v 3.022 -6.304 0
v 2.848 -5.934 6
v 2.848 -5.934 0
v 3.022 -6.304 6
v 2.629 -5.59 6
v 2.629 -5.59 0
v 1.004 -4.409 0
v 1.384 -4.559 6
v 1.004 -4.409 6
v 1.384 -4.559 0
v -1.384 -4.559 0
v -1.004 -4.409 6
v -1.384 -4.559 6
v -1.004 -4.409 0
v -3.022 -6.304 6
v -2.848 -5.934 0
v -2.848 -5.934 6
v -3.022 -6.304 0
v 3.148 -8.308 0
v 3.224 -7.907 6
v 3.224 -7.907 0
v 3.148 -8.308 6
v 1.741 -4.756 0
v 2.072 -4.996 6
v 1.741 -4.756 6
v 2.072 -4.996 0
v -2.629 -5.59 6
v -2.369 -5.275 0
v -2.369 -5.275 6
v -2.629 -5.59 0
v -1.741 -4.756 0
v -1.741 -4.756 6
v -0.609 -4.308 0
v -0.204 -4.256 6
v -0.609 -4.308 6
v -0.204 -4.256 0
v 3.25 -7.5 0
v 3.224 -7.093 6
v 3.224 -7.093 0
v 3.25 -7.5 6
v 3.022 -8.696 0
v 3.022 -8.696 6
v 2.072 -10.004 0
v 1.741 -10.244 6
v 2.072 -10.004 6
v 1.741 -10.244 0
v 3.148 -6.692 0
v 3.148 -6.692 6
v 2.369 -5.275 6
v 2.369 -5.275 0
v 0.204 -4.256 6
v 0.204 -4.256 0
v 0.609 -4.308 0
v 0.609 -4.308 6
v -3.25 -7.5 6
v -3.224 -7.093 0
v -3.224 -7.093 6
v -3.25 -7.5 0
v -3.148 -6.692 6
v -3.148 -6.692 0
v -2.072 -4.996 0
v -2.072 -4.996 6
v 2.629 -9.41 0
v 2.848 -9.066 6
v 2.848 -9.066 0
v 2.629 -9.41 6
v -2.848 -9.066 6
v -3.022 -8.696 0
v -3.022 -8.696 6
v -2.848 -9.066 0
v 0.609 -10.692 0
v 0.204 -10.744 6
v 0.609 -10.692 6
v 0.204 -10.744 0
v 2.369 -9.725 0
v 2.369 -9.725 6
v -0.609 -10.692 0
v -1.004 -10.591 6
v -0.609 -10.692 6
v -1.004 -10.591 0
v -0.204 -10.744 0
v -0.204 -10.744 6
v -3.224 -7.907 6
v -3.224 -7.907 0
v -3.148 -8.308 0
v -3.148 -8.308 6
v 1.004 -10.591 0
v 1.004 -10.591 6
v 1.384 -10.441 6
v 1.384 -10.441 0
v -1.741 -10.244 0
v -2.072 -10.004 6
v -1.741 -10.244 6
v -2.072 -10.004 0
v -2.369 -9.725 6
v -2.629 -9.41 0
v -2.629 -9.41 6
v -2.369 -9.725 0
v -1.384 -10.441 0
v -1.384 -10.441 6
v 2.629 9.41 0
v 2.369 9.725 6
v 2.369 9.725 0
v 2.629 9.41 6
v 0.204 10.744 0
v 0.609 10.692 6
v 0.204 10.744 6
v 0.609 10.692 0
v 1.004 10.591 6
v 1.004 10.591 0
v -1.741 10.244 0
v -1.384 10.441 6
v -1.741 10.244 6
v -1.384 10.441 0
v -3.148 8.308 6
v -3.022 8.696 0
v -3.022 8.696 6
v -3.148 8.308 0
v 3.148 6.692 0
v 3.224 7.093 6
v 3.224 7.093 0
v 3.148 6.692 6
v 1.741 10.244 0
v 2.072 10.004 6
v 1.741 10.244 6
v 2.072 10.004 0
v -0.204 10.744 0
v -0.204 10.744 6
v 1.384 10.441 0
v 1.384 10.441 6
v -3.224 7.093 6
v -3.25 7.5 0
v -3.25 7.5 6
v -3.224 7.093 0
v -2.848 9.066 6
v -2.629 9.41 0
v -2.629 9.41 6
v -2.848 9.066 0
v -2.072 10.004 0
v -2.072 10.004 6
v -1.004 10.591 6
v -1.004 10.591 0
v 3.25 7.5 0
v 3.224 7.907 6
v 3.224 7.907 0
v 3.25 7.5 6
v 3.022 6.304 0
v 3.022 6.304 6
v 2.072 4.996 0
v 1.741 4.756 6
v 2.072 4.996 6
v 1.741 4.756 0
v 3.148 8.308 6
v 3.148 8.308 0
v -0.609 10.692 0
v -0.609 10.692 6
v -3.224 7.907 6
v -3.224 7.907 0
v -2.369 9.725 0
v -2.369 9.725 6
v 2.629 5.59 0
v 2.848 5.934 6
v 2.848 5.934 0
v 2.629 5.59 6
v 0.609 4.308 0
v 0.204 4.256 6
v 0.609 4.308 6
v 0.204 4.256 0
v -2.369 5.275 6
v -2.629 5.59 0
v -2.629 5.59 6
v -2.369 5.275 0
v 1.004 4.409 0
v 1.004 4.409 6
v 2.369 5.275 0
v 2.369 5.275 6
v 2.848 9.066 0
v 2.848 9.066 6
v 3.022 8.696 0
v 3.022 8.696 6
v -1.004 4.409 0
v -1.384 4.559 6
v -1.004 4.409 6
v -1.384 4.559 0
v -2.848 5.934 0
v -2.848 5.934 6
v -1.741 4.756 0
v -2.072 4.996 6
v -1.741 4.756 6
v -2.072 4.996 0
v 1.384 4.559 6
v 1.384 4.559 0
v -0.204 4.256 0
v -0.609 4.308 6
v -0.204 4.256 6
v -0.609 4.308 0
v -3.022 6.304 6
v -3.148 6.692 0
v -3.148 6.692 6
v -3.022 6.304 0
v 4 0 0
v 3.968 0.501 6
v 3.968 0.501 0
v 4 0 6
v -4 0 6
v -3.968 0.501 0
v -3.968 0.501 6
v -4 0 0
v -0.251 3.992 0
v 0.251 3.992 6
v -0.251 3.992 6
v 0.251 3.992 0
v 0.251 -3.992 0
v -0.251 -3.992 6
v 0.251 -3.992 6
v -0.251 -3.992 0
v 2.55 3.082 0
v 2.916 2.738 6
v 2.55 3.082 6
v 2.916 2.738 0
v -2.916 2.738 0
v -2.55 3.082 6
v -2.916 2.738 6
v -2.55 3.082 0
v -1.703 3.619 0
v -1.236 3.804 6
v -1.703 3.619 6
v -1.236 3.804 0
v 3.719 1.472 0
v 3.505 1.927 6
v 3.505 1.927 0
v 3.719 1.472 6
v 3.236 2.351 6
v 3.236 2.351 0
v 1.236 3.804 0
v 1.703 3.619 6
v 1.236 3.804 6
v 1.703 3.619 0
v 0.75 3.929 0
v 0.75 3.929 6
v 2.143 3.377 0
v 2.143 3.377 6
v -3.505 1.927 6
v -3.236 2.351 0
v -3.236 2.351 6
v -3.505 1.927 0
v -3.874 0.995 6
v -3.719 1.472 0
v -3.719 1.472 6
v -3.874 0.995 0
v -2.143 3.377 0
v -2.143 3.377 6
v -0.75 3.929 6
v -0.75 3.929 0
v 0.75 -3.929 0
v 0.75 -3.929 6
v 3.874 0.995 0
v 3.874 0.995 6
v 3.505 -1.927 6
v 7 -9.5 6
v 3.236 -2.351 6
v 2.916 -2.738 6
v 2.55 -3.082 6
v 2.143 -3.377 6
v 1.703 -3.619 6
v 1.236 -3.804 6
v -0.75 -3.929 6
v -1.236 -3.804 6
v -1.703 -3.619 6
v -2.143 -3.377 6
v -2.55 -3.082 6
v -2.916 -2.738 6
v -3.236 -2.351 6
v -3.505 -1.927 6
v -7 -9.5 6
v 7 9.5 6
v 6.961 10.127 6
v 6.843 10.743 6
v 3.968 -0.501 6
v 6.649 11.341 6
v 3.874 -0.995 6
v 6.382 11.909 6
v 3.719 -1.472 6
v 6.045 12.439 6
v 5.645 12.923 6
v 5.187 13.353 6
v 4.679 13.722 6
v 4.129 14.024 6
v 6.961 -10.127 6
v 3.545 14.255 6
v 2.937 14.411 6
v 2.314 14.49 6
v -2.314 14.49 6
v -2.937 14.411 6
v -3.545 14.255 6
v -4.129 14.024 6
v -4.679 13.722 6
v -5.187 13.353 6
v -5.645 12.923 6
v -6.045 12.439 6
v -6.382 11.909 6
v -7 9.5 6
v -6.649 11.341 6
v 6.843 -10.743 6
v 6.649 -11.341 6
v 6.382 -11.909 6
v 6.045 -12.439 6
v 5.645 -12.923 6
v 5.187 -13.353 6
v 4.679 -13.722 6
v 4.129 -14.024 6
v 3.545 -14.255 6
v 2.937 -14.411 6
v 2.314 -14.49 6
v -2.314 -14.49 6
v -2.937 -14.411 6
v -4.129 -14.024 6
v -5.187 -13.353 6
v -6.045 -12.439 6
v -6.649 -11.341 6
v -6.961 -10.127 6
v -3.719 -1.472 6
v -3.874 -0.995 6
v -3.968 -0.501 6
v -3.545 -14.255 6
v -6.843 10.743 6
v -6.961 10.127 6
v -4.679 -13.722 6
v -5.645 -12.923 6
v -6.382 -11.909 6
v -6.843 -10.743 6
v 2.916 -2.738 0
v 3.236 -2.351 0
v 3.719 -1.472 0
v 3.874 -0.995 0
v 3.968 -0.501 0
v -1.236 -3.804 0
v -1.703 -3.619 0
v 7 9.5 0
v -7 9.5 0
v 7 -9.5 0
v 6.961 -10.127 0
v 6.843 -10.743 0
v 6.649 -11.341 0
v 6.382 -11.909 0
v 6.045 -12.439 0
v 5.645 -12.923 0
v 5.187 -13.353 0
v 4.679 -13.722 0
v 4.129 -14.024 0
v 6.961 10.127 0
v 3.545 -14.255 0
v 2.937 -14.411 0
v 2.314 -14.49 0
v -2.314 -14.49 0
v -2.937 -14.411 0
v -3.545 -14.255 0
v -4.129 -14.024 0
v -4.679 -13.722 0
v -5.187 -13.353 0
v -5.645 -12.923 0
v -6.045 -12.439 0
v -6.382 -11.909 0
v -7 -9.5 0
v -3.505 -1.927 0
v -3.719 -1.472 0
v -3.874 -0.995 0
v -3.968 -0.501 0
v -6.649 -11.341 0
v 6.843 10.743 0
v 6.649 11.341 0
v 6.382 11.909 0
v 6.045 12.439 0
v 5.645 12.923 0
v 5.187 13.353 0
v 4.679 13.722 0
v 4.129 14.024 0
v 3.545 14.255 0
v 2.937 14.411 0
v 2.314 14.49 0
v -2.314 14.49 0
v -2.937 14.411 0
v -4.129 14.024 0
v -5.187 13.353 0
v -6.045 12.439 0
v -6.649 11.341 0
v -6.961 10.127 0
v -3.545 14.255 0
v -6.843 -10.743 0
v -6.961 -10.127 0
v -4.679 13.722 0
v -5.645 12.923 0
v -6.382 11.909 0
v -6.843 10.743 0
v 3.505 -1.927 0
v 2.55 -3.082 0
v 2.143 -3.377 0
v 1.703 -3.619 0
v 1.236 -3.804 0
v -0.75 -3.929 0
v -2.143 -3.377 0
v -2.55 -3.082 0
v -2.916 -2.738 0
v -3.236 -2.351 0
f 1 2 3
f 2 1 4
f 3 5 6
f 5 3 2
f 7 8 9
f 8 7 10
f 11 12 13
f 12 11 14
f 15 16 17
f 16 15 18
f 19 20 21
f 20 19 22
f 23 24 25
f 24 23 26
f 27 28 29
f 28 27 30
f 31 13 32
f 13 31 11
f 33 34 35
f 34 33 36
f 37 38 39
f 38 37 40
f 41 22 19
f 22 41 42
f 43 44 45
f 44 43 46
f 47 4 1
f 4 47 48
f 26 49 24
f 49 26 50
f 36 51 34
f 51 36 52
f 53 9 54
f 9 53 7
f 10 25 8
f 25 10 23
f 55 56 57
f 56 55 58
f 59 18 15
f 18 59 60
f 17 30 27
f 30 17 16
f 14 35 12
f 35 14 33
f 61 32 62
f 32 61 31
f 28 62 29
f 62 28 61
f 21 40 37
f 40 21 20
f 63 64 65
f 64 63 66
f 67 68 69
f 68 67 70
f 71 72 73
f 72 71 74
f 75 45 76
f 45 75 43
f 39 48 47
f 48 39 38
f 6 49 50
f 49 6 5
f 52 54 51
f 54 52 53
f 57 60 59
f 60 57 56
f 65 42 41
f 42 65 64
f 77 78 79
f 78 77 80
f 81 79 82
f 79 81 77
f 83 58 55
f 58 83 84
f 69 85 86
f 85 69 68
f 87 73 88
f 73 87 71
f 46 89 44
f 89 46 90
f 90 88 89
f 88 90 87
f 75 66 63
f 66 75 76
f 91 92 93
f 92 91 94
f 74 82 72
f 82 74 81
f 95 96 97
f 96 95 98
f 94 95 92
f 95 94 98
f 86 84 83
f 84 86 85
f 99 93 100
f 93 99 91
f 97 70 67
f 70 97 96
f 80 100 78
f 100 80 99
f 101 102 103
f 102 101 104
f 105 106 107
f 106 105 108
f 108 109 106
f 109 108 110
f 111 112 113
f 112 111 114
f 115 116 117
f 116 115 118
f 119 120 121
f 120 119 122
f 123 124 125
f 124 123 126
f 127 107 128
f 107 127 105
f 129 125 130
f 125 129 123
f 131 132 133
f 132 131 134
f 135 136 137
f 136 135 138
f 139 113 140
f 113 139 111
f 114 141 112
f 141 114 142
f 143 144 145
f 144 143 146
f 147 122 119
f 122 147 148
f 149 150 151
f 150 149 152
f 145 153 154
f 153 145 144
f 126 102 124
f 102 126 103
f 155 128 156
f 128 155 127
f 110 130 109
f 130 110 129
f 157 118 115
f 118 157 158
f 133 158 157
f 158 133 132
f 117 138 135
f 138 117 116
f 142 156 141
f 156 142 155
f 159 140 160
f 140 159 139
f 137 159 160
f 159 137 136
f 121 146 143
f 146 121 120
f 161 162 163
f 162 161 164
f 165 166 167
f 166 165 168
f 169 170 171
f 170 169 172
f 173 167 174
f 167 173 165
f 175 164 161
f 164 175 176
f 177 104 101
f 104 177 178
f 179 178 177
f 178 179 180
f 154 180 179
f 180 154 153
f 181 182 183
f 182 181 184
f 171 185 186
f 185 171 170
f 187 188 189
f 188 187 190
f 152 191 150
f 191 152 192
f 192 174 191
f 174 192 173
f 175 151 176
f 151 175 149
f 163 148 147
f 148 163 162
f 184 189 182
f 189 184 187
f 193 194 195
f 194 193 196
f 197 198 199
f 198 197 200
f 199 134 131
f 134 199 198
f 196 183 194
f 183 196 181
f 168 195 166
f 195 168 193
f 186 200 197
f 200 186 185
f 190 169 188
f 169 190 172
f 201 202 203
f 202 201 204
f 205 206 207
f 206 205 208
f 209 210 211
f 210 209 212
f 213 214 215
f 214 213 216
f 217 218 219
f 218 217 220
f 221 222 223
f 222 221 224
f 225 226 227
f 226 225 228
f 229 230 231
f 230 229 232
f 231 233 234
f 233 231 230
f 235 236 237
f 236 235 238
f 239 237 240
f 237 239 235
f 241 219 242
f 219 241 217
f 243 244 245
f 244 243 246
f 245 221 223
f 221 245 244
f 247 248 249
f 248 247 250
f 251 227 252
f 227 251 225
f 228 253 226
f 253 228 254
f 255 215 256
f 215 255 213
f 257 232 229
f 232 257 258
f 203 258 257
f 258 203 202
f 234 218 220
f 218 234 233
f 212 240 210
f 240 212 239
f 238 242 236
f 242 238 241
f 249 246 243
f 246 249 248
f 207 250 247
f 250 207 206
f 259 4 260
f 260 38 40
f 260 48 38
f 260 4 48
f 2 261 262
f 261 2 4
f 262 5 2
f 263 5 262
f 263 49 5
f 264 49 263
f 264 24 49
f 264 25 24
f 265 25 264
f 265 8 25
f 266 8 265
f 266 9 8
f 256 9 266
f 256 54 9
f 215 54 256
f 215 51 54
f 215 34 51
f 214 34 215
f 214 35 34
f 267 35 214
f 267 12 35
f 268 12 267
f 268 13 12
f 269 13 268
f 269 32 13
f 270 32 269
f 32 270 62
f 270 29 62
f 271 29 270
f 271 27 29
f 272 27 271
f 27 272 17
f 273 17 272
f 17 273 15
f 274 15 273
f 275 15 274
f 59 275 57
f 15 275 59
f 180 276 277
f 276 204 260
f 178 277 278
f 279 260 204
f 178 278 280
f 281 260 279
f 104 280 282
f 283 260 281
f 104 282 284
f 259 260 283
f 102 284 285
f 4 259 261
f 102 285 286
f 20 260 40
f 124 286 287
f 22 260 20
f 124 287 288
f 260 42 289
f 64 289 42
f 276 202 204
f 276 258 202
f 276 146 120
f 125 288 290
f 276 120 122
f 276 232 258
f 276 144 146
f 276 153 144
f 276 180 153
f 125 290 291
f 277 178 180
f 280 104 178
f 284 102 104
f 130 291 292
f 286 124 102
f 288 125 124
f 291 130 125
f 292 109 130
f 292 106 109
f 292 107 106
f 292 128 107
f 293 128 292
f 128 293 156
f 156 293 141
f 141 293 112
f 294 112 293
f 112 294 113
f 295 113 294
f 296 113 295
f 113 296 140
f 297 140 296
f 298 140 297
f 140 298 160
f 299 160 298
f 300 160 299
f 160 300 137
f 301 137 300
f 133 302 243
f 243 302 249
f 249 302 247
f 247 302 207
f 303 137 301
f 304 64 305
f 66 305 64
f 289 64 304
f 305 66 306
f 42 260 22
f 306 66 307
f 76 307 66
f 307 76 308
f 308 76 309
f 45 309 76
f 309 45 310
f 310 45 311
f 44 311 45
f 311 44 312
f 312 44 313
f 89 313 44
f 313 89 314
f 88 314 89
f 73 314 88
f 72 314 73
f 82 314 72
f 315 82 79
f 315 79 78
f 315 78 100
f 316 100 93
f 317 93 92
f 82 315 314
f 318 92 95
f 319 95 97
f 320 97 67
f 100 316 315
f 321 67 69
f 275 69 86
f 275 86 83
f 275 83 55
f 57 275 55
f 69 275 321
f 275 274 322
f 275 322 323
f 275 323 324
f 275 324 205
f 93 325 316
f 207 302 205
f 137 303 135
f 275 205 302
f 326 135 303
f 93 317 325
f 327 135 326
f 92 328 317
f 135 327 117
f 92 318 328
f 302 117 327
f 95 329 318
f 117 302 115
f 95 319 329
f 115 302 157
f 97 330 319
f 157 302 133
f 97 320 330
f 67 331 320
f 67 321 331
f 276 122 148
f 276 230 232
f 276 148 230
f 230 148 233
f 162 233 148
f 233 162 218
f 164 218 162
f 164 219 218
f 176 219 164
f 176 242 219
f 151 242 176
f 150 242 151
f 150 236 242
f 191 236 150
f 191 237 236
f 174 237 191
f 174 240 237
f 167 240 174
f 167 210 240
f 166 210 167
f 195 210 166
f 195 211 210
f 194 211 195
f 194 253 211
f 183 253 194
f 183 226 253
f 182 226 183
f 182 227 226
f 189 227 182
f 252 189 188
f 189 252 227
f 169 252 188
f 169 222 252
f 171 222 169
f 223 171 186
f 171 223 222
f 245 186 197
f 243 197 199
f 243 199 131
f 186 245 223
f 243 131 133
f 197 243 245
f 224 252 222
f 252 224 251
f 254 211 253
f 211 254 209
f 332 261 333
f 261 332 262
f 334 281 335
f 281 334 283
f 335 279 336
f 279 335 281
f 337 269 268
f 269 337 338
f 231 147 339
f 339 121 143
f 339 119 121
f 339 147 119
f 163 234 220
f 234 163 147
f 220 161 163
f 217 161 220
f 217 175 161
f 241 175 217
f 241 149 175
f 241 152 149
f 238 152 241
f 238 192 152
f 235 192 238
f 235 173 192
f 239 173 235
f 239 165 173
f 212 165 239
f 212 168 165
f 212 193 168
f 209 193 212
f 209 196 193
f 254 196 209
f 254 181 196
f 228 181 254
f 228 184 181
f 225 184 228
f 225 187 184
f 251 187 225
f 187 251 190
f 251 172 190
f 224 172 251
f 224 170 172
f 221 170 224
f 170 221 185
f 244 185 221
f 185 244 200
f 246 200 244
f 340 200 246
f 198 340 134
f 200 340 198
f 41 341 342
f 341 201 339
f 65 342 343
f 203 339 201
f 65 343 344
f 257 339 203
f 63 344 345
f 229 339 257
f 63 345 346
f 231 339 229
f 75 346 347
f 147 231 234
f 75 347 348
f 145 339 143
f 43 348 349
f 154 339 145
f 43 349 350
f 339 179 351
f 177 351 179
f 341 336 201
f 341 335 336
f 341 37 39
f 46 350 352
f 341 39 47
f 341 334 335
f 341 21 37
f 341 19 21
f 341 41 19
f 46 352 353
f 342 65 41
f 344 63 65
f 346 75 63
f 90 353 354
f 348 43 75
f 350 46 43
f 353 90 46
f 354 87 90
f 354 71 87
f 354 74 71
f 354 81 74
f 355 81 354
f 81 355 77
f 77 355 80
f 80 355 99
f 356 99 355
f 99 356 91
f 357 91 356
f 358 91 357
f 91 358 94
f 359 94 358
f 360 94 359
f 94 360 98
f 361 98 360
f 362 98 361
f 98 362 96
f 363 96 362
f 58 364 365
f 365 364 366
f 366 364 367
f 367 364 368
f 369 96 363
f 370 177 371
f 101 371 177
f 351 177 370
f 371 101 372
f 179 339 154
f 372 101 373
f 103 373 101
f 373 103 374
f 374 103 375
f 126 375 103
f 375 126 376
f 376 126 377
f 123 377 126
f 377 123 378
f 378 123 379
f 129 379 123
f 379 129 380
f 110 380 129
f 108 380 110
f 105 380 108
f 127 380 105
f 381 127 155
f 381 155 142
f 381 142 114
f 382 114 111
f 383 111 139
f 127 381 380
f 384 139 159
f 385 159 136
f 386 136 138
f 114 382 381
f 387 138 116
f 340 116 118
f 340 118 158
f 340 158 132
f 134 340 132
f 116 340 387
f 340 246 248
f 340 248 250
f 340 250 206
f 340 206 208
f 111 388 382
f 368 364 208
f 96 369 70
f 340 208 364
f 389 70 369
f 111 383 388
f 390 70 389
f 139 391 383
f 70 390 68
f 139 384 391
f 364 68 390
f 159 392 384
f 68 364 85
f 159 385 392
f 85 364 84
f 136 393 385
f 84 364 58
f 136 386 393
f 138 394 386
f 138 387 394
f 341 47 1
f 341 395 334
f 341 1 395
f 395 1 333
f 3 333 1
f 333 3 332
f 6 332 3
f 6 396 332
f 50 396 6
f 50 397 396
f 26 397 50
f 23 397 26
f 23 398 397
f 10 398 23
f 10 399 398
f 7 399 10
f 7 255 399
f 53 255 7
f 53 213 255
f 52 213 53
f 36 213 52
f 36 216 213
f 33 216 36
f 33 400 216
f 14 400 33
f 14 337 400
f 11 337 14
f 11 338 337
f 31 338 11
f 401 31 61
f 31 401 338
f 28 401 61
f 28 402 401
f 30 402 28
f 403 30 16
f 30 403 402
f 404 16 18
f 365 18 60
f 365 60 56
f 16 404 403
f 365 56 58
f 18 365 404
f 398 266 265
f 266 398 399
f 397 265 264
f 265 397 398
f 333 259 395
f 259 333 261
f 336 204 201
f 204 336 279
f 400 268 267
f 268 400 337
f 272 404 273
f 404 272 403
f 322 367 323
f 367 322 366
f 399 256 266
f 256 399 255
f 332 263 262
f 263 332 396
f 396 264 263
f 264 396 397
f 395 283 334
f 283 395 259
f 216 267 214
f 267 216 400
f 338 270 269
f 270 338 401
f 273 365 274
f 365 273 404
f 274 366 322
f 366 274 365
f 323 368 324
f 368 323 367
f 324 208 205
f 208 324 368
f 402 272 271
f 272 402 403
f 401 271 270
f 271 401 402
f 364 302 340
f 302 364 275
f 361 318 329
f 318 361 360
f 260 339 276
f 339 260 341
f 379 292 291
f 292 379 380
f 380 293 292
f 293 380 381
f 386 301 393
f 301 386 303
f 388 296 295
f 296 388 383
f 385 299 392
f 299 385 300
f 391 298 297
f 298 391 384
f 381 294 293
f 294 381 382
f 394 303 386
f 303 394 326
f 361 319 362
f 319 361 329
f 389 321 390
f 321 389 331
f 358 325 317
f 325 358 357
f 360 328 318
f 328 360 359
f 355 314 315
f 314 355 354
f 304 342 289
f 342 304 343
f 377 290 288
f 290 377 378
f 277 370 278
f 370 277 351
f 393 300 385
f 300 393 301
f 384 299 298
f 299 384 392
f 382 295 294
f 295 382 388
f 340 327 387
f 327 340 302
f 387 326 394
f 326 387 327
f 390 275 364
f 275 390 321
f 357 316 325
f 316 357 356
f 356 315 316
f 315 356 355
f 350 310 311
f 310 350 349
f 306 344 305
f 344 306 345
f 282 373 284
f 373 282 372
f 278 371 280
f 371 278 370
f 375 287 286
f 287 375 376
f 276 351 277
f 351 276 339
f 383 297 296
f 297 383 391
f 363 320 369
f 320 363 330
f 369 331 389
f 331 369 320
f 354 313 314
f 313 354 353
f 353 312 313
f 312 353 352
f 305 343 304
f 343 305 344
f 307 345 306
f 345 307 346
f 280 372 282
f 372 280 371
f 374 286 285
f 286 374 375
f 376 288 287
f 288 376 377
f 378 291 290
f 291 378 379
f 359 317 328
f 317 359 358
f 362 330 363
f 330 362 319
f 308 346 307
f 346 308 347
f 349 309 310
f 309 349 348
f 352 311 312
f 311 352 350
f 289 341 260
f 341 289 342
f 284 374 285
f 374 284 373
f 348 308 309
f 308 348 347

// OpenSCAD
$fn = 50;


difference() {
	union() {
		hull() {
			translate(v = [-2.0000000000, 9.5000000000, 0]) {
				cylinder(h = 6, r = 5);
			}
			translate(v = [2.0000000000, 9.5000000000, 0]) {
				cylinder(h = 6, r = 5);
			}
			translate(v = [-2.0000000000, -9.5000000000, 0]) {
				cylinder(h = 6, r = 5);
			}
			translate(v = [2.0000000000, -9.5000000000, 0]) {
				cylinder(h = 6, r = 5);
			}
		}
	}
	union() {
		#translate(v = [0.0000000000, -7.5000000000, -100.0000000000]) {
			cylinder(h = 200, r = 3.2500000000);
		}
		#translate(v = [0.0000000000, -7.5000000000, -100.0000000000]) {
			cylinder(h = 200, r = 3.2500000000);
		}
		#translate(v = [0.0000000000, 7.5000000000, -100.0000000000]) {
			cylinder(h = 200, r = 3.2500000000);
		}
		#translate(v = [0.0000000000, 7.5000000000, -100.0000000000]) {
			cylinder(h = 200, r = 3.2500000000);
		}
		#cylinder(h = 6, r = 4.0000000000);
	}
}
